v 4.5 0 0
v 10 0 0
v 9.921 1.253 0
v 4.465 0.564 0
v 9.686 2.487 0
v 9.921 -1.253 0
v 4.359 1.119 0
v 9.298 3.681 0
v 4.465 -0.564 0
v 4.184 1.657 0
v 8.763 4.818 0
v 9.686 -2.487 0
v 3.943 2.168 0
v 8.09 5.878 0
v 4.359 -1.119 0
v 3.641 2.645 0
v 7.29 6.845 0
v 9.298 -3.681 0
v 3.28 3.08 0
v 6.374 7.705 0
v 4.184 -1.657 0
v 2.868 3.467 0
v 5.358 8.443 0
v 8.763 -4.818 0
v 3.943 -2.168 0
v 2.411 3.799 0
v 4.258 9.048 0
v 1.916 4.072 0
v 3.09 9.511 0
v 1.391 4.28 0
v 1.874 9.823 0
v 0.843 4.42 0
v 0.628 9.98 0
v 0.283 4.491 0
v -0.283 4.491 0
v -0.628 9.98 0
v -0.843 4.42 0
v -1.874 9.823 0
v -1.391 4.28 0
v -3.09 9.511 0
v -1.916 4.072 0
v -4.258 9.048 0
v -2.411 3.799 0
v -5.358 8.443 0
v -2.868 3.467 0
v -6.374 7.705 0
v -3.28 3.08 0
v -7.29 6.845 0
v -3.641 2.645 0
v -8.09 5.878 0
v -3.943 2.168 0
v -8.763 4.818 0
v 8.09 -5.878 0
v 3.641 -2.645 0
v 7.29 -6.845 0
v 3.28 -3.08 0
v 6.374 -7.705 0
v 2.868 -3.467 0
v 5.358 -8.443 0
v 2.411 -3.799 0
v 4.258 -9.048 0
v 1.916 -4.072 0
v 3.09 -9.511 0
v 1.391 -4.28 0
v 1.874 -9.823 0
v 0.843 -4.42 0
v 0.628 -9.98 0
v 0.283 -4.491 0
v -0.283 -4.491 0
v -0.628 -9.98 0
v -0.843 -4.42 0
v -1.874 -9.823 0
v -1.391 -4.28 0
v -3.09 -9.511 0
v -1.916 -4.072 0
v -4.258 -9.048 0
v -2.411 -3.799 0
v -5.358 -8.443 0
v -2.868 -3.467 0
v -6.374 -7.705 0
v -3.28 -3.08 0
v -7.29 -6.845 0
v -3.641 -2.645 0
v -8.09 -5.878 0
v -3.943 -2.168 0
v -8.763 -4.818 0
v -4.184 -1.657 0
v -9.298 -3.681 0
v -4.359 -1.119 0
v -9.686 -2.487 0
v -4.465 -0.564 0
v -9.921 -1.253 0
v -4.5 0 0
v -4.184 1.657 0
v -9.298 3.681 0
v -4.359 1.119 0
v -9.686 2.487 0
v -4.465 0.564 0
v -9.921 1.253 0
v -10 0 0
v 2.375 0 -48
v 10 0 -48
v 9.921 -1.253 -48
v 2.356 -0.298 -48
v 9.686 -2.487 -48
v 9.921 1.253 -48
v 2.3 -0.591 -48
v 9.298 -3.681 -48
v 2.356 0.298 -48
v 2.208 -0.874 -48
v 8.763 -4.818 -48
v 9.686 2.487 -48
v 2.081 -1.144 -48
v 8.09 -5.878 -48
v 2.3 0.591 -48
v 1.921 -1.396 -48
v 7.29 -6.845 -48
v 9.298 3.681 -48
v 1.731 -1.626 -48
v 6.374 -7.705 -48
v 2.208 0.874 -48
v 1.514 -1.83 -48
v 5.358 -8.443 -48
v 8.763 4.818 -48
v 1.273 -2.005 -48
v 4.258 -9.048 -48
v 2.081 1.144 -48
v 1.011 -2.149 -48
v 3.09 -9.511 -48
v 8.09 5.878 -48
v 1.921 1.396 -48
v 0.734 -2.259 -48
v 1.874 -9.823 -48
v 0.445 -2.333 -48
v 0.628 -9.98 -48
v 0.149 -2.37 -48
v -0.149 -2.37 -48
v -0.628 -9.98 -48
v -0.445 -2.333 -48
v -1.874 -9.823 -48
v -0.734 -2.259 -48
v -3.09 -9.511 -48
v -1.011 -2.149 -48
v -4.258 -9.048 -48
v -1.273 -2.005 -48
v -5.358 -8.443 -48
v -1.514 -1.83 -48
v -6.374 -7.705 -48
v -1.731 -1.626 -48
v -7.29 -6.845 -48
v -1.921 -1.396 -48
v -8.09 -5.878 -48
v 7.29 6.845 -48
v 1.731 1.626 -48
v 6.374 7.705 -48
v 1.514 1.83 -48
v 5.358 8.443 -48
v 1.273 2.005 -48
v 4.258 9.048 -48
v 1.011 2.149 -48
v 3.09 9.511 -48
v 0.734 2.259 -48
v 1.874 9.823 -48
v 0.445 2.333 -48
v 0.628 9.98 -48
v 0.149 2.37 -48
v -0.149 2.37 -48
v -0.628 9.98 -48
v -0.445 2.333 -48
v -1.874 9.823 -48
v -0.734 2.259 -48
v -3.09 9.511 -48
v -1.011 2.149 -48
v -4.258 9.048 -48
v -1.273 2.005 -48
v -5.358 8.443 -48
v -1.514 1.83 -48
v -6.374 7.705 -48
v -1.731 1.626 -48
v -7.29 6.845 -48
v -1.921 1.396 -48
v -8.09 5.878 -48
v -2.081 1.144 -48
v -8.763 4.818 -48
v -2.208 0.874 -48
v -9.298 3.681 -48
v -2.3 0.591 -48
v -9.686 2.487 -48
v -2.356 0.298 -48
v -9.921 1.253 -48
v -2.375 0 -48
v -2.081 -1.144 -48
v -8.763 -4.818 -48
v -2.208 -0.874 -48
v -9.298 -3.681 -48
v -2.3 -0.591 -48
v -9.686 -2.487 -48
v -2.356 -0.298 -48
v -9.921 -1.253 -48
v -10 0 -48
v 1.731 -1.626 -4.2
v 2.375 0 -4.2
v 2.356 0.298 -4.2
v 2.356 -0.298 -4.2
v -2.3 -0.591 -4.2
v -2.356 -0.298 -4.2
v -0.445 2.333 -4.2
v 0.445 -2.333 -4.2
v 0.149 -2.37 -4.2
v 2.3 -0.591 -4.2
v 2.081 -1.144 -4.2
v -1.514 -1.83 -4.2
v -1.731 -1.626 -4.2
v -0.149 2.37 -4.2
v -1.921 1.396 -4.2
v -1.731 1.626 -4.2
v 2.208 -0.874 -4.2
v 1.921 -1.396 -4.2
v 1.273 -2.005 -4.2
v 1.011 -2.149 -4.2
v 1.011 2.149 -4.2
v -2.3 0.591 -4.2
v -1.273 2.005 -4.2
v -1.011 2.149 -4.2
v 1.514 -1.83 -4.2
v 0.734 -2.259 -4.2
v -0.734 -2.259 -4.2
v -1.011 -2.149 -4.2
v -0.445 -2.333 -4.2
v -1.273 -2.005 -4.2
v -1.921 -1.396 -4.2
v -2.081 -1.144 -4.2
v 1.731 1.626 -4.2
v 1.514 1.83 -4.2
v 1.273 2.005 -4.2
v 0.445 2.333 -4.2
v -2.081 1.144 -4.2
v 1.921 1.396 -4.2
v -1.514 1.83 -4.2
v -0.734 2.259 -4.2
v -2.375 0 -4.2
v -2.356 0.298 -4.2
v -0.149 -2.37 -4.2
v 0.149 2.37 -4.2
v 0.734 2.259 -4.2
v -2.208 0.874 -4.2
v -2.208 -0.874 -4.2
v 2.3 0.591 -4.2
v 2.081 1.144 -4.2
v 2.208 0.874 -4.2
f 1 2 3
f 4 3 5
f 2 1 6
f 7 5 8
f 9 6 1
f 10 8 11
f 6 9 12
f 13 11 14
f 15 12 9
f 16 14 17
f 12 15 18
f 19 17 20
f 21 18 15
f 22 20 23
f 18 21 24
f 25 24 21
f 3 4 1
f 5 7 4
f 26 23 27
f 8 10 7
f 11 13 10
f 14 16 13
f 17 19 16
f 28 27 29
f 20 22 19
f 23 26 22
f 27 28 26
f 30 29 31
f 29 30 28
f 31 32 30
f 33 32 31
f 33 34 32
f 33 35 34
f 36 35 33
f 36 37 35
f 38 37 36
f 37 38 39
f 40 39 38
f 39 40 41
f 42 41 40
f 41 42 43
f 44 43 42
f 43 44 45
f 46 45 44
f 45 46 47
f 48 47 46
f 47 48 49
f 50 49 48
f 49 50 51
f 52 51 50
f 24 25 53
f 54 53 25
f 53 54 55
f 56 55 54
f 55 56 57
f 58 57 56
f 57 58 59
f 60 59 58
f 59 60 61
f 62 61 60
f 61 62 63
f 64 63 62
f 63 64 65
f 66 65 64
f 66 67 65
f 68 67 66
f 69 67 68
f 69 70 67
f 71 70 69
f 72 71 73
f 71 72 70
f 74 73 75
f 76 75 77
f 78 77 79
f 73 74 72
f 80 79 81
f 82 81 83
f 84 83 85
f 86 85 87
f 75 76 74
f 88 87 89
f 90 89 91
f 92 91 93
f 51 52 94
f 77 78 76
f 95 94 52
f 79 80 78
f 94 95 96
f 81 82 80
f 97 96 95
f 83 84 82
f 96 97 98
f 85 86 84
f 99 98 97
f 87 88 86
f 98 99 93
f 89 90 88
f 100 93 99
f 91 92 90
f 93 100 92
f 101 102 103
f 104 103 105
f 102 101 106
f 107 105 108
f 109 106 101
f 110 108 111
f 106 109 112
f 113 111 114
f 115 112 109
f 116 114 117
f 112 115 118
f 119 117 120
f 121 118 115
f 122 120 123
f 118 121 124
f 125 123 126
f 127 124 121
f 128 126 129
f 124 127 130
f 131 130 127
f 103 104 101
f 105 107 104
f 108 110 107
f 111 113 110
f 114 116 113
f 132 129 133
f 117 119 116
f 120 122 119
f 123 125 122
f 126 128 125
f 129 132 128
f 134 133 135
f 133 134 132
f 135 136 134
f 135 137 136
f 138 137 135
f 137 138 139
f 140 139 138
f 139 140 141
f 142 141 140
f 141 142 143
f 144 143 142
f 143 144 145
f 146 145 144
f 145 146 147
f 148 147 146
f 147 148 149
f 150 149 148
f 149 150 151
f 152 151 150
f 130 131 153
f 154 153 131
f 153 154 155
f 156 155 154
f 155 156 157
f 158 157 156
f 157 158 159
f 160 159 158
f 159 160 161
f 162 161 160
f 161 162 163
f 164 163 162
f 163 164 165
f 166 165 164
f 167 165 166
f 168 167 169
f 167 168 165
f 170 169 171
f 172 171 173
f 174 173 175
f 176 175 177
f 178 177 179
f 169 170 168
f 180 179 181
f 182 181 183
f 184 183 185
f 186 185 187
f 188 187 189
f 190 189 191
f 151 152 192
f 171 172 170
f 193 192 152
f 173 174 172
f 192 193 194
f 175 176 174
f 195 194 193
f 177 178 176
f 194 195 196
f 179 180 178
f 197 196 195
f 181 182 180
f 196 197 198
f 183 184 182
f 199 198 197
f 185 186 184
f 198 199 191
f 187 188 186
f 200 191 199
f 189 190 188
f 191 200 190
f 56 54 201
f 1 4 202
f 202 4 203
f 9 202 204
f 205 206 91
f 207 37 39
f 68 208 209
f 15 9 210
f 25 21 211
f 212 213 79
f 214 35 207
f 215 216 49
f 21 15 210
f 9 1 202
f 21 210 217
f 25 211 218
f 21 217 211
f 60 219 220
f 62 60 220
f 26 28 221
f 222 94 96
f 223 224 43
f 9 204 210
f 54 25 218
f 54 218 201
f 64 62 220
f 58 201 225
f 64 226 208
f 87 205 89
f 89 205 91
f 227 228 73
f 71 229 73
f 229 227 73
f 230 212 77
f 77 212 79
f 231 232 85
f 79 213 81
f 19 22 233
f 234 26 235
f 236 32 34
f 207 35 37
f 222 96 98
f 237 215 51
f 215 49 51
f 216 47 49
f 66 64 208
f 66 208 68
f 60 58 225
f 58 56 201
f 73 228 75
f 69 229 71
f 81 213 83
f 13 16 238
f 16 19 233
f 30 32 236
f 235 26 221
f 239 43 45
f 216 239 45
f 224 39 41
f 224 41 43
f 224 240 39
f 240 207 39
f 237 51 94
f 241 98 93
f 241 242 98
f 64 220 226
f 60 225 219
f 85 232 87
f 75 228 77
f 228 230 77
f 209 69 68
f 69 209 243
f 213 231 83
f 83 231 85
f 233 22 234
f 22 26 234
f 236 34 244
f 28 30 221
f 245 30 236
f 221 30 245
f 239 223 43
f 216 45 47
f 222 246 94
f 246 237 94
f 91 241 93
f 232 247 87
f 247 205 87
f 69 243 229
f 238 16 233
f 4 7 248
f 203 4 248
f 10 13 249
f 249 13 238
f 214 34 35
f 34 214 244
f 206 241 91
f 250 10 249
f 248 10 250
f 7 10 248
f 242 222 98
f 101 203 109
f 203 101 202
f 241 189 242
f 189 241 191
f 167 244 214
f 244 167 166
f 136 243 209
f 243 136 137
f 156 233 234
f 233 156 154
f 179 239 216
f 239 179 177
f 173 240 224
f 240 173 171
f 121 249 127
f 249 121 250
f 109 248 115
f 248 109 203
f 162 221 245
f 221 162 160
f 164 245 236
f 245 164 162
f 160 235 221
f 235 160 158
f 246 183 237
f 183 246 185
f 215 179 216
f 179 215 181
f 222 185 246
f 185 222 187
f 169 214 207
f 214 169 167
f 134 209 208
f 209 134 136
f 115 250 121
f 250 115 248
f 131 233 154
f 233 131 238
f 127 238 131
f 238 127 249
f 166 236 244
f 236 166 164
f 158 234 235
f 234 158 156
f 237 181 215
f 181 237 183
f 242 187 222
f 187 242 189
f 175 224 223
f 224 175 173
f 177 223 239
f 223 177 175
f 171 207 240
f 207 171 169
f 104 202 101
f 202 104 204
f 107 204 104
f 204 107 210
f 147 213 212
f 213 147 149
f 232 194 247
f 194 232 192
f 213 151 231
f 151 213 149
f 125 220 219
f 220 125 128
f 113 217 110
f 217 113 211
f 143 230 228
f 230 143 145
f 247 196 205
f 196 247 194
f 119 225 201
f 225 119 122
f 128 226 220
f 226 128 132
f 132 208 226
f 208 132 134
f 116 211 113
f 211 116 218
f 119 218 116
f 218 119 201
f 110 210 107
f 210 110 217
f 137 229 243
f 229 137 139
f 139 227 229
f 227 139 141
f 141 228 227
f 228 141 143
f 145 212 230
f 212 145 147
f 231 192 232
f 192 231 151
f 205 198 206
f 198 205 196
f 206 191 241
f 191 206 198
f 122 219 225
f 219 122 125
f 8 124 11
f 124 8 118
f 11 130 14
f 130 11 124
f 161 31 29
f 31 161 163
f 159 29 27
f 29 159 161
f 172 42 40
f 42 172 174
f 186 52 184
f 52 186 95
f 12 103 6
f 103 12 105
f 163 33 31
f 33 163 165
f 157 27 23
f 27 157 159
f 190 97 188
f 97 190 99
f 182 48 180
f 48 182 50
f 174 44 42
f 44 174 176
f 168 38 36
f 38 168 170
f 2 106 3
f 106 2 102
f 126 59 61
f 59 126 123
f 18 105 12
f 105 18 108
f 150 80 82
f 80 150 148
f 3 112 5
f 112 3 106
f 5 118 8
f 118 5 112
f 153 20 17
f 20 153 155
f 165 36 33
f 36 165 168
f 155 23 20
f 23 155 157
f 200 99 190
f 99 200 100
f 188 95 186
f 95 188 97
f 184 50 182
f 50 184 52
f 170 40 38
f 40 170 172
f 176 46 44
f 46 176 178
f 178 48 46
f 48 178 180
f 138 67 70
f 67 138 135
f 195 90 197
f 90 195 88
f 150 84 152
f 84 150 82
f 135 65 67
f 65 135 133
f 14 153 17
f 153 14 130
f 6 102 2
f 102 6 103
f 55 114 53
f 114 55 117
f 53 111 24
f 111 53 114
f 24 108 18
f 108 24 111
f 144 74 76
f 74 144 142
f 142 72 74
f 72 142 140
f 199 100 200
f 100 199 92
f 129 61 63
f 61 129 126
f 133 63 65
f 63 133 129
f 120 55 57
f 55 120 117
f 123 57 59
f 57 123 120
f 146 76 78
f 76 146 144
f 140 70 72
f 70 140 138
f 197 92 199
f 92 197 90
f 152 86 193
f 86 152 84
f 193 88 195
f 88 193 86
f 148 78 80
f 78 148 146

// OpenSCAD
$fn = 50;


difference() {
	union() {
		translate(v = [0, 0, -48.0000000000]) {
			cylinder(h = 48, r = 10.0000000000);
		}
		cylinder(h = 0, r = 20.0000000000);
	}
	union() {
		translate(v = [0, 0, 0]) {
			rotate(a = [0, 0, 0]) {
				difference() {
					union() {
						#translate(v = [0, 0, -48.0000000000]) {
							cylinder(h = 48, r = 2.2500000000);
						}
						#translate(v = [0, 0, -4.2000000000]) {
							cylinder(h = 4.2000000000, r1 = 2.3750000000, r2 = 4.5000000000);
						}
						#translate(v = [0, 0, -48.0000000000]) {
							cylinder(h = 48, r = 2.3750000000);
						}
						#translate(v = [0, 0, -48.0000000000]) {
							cylinder(h = 48, r = 2.2500000000);
						}
					}
					union();
				}
			}
		}
	}
}
